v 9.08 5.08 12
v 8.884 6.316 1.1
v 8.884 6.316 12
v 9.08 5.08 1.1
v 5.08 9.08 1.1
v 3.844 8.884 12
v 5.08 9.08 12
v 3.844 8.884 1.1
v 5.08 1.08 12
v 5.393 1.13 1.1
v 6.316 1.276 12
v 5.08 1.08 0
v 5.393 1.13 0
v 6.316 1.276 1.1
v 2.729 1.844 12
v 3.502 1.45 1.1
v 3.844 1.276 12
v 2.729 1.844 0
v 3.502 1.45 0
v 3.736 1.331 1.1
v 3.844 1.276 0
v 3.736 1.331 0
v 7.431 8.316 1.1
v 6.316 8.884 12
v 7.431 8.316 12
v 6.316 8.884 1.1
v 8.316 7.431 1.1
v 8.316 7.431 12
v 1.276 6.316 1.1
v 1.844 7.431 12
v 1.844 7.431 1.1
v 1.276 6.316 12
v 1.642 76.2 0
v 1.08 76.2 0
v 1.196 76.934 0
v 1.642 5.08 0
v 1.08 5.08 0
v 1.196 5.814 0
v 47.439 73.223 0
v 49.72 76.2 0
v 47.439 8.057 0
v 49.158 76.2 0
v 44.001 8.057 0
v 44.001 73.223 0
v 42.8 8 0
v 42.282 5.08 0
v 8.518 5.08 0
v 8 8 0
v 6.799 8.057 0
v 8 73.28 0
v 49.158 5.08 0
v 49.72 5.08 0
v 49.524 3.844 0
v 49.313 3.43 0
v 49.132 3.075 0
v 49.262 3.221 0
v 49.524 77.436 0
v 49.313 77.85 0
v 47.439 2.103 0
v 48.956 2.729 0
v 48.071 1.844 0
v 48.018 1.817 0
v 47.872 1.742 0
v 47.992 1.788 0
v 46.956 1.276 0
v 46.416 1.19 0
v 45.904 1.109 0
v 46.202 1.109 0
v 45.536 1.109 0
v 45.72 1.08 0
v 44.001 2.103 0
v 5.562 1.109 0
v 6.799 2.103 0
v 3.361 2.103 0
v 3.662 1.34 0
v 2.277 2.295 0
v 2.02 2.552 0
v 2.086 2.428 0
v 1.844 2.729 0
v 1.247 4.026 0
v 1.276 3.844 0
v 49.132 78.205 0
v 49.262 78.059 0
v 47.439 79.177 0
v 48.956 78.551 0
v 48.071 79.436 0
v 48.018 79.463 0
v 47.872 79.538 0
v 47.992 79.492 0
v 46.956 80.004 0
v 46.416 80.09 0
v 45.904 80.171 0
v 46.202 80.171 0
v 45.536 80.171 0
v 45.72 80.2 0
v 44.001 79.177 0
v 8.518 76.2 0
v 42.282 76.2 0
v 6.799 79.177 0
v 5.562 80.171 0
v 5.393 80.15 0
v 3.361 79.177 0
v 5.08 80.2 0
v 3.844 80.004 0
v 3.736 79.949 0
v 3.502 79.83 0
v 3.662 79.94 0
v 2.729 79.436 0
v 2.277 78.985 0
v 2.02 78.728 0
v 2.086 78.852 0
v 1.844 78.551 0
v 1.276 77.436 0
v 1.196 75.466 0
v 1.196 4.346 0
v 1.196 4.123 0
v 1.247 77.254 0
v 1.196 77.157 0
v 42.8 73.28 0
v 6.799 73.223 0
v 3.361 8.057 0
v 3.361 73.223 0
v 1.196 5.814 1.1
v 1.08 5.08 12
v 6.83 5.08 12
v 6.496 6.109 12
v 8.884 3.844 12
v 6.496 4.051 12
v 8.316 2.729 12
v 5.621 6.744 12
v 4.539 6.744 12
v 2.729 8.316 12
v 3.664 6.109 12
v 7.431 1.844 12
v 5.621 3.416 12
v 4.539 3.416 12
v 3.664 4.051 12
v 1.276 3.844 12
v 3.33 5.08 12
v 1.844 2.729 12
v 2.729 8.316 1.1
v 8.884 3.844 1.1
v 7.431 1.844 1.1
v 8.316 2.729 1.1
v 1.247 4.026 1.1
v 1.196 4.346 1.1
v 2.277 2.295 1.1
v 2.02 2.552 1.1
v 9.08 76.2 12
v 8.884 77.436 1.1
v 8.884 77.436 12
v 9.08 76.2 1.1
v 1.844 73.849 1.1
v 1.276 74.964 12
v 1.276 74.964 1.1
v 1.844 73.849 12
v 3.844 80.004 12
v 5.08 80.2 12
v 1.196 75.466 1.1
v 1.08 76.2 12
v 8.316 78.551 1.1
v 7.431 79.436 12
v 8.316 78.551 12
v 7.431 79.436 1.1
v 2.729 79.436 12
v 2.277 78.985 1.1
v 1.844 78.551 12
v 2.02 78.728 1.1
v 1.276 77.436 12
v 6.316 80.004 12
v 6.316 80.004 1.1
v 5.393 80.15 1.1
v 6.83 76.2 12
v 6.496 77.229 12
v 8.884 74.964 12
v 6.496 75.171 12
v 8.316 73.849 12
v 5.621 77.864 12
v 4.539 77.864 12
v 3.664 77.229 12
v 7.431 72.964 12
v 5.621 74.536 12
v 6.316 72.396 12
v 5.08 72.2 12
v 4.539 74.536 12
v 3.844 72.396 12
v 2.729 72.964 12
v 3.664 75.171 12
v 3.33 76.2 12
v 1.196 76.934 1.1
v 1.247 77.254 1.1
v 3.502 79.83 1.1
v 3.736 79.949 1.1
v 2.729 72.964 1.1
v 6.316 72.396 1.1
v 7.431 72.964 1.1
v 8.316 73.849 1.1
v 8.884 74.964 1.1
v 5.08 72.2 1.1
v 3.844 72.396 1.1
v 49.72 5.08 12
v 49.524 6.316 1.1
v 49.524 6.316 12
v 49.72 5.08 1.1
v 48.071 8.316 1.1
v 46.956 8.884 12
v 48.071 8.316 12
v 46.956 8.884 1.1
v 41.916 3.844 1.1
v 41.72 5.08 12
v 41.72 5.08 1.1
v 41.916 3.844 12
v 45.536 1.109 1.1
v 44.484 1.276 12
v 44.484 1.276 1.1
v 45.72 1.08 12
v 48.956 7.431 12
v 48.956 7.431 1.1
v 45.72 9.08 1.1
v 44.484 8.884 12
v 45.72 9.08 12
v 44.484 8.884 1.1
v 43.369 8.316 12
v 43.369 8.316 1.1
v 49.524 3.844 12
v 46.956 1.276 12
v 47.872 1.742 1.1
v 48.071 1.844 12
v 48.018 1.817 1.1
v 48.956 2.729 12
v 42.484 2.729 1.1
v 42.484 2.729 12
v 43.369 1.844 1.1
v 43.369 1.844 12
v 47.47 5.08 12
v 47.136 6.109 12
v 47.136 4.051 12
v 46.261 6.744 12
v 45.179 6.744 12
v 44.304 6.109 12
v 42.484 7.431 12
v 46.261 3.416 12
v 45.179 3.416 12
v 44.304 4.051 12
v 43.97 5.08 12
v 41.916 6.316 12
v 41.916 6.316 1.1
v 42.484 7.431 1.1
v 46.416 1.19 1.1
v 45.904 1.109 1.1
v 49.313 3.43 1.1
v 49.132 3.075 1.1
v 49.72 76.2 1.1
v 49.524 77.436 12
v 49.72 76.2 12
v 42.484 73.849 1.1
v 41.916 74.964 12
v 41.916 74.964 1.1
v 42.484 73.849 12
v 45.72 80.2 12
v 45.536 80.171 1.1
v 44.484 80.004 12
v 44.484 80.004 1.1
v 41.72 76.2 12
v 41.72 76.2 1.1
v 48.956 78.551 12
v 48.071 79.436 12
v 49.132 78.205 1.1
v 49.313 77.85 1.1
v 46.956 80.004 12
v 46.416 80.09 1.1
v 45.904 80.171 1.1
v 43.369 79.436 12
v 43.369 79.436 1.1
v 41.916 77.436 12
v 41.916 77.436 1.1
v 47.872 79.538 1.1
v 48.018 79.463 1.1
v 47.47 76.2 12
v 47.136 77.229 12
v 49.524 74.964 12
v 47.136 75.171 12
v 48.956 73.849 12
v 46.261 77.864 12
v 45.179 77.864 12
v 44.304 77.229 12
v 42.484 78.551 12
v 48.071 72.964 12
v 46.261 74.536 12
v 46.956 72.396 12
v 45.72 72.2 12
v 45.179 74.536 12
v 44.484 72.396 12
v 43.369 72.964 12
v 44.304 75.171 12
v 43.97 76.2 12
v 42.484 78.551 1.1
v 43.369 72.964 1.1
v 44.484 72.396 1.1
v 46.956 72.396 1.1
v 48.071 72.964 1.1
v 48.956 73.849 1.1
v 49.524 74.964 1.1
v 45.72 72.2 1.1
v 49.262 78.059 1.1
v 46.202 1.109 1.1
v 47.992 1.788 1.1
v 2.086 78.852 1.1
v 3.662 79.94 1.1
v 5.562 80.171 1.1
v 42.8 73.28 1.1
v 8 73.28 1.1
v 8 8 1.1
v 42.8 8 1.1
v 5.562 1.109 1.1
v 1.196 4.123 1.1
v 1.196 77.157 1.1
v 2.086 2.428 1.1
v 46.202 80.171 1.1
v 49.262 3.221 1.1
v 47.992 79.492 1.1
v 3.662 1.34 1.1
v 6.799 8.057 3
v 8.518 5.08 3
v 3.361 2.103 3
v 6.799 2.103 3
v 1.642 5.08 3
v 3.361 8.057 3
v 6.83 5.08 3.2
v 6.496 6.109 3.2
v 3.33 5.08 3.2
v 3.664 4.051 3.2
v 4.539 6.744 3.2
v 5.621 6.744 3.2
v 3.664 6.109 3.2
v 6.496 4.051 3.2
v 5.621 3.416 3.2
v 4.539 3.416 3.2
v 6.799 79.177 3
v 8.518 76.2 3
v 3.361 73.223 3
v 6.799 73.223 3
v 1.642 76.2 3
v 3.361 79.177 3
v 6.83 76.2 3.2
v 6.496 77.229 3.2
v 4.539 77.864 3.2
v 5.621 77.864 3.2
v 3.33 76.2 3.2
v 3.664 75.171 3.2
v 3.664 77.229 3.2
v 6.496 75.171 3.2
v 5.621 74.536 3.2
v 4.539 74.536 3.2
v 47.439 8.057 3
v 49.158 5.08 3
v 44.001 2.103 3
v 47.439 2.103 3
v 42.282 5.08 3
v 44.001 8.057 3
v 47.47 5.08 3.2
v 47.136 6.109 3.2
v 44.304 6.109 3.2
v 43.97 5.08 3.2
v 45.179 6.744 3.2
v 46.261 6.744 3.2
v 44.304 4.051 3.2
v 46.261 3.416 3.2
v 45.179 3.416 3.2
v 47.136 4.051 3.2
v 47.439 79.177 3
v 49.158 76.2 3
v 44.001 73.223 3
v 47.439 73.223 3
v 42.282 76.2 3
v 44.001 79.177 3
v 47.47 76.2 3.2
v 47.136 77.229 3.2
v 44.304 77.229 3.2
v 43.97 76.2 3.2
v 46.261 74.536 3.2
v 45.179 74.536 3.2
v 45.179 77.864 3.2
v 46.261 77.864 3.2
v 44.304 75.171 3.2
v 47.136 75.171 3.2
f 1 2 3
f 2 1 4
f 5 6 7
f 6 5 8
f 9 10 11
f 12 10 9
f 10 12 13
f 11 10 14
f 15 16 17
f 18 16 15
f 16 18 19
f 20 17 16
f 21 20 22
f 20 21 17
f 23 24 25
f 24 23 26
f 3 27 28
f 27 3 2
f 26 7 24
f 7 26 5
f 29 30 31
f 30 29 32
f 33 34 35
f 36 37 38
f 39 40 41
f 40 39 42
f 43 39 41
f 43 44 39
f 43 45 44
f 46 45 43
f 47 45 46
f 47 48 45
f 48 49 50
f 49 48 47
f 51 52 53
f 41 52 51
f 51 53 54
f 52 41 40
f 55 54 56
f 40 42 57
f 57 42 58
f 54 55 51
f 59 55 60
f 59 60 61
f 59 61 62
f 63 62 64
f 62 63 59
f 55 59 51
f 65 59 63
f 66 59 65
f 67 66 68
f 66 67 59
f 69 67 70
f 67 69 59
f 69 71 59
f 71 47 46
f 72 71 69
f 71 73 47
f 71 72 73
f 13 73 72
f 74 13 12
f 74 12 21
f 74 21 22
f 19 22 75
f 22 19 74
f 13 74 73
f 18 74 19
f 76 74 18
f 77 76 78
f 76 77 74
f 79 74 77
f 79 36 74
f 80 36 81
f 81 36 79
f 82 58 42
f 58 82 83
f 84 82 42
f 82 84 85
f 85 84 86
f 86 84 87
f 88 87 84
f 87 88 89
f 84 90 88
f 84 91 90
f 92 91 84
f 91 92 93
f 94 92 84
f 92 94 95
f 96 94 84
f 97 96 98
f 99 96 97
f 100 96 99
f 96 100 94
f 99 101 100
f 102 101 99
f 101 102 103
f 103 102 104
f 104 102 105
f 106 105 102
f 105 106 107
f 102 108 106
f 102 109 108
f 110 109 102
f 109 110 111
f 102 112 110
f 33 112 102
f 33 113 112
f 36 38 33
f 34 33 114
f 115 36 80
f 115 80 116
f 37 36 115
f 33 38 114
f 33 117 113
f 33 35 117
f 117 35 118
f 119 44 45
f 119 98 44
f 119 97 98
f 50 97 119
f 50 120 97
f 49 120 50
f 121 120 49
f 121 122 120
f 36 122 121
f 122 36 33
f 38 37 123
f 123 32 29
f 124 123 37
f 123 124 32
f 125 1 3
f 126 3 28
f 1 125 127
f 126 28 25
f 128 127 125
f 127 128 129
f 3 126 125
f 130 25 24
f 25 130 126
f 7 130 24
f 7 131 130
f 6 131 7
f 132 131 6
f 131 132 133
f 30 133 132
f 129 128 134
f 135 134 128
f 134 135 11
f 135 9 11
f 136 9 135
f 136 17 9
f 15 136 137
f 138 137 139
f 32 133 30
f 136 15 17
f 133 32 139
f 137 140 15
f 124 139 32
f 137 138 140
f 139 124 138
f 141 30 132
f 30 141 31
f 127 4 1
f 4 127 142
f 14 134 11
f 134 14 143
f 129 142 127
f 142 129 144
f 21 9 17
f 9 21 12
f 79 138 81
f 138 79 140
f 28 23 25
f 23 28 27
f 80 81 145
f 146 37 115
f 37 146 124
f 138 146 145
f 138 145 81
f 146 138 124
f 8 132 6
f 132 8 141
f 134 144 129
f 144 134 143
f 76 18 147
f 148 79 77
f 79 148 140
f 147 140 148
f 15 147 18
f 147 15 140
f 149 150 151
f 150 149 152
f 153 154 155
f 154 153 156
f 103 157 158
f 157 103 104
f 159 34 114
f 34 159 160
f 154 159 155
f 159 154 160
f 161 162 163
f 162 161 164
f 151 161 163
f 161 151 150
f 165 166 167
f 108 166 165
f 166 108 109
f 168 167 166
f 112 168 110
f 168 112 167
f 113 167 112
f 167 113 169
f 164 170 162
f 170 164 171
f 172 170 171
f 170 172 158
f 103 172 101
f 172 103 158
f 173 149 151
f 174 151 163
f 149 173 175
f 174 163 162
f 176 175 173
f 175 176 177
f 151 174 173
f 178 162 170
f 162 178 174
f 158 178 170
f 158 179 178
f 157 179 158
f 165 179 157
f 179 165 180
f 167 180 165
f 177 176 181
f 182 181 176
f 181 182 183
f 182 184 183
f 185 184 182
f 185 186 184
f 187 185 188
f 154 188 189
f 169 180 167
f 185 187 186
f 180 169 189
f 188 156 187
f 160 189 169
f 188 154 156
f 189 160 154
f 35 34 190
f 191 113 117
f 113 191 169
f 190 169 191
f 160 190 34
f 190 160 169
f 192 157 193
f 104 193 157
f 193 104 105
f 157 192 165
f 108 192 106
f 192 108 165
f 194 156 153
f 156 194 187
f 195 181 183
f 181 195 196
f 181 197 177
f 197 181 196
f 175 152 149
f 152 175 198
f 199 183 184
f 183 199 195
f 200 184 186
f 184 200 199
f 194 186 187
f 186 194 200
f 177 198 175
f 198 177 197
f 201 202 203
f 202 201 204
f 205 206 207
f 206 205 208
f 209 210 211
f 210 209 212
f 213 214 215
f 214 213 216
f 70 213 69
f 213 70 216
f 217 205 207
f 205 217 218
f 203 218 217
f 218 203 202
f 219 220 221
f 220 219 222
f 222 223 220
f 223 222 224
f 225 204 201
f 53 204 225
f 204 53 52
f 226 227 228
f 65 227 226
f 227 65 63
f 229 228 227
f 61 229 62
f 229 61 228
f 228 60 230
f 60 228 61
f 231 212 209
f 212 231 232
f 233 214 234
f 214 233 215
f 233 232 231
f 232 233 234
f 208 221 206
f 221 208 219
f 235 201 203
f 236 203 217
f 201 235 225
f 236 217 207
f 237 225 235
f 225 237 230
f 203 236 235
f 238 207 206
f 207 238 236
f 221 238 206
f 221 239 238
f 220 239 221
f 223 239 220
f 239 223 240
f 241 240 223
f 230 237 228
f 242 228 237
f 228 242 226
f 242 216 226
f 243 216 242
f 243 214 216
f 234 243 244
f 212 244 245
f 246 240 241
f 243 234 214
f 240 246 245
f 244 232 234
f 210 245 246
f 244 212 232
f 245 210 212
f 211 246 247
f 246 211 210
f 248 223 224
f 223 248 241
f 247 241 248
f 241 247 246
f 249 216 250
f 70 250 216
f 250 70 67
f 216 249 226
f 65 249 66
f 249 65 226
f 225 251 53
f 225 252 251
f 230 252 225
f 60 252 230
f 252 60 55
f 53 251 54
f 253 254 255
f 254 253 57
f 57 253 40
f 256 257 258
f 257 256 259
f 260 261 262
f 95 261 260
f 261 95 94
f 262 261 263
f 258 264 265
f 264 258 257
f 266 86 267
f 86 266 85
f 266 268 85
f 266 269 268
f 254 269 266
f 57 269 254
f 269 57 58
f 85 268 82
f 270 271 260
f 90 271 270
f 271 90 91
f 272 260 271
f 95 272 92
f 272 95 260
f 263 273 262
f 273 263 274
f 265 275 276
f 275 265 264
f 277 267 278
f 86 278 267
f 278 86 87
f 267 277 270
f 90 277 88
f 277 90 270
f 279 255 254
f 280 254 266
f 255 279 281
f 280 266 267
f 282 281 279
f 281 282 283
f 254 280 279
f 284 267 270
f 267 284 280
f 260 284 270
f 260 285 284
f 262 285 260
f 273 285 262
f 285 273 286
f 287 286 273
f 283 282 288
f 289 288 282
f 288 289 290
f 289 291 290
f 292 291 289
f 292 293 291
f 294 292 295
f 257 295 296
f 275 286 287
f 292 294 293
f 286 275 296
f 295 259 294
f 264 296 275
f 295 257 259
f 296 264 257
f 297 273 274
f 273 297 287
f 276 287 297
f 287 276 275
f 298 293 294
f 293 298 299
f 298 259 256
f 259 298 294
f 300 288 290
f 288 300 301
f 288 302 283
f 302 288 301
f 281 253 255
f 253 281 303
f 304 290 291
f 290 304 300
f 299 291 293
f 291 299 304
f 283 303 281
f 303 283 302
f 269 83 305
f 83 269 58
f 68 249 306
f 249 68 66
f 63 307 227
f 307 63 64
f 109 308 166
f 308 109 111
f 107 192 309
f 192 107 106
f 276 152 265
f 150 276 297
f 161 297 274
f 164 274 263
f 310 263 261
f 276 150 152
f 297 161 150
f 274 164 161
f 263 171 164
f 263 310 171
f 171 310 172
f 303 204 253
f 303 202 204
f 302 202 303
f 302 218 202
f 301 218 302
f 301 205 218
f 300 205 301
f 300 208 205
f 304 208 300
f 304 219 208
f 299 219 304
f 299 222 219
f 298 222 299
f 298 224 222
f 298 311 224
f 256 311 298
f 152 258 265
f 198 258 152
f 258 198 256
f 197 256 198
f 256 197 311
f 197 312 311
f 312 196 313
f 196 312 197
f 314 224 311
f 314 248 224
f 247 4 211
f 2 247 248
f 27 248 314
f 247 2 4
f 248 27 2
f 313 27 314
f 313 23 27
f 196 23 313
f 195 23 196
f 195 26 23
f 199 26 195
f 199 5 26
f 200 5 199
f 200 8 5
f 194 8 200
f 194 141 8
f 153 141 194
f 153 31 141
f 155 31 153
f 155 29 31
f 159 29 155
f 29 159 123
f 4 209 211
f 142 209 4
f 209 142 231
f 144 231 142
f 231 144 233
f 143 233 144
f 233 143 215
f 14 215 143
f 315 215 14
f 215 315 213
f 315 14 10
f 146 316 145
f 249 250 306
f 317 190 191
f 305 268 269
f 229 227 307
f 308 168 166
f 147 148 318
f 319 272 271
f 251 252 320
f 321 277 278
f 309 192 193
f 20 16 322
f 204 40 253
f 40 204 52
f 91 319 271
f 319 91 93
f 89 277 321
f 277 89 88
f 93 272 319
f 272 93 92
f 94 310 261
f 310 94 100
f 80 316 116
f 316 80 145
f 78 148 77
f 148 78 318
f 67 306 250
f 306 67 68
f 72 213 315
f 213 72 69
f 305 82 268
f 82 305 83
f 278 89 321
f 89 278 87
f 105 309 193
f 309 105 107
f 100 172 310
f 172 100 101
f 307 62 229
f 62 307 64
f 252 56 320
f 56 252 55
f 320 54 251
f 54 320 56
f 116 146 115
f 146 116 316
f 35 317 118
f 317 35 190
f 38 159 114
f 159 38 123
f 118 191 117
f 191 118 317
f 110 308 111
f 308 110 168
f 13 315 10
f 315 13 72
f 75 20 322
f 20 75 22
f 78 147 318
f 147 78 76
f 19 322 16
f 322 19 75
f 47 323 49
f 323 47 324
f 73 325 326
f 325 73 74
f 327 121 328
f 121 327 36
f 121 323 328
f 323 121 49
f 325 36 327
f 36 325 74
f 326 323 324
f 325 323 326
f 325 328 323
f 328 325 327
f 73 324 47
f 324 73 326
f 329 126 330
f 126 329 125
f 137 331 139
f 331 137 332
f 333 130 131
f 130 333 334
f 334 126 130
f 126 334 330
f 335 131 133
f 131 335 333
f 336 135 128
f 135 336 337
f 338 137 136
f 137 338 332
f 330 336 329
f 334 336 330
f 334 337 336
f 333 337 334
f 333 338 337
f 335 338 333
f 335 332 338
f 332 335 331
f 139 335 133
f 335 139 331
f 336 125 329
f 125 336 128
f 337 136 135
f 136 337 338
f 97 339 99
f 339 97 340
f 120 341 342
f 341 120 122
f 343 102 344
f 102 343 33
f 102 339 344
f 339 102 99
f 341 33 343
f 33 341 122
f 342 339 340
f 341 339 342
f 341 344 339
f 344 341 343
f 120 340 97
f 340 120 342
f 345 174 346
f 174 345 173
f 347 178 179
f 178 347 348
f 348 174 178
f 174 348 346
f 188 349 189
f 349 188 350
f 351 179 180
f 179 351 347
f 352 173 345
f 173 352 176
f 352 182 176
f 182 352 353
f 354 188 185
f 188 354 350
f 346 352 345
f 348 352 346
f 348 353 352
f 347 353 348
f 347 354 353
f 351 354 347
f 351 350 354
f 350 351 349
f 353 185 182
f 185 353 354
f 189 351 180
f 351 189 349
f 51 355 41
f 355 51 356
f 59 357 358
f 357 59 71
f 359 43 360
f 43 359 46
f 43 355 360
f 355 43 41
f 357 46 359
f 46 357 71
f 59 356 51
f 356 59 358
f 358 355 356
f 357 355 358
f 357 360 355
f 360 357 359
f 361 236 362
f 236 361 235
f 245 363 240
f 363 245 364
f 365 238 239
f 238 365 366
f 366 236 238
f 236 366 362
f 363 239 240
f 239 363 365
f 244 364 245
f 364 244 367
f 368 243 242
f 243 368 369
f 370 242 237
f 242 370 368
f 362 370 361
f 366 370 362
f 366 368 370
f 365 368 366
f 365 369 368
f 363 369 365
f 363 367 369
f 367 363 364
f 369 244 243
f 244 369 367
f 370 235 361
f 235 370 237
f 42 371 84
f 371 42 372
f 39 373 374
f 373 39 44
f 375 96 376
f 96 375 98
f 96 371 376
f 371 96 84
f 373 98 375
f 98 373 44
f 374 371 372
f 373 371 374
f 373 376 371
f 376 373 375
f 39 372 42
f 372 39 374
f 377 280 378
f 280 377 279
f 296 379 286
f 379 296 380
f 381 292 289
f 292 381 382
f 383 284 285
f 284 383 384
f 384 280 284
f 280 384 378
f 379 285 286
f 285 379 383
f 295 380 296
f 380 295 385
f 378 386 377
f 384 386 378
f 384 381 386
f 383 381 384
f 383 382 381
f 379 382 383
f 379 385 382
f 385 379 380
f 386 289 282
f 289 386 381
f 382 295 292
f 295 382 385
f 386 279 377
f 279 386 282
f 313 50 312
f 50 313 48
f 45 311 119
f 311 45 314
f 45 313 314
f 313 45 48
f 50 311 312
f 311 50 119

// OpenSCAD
x_holes = 5;
y_holes = 8;
pedestal_height = 12;   // designed for use the MLAB standard 20mm screws.

MLAB_grid = 10.16;
thickness = 1;          // thickness of bottom belt
pile_radius = 4;        // radius of pile around screw
x_size = x_holes * MLAB_grid ;
y_size = y_holes * MLAB_grid ;
mount_hole = 3.5;
//nut_size = 6.8;  //size suitable for PLA material
nut_size = 6.7;  //size suitable for ABS material
clear = 0.175;




MLAB_grid_xoffset = MLAB_grid/2;
MLAB_grid_yoffset = MLAB_grid/2;

grid_list = [for (j = [MLAB_grid_xoffset : MLAB_grid: x_size], i = [MLAB_grid_yoffset :MLAB_grid: y_size]) 
if ((j>(x_size-10) && i>(y_size-10)) || (j<10 && i<10) || (j<10 && i>(y_size-10)) || (j>(x_size-10) && i<10) ) [j, i] ];


difference () {
    union () {
        for (j = grid_list) {
            translate (concat(j, [0]))
            cylinder (h = pedestal_height, r= pile_radius, $fn=20);
        }

            translate ([MLAB_grid_xoffset , MLAB_grid_yoffset , 0])
                minkowski() {
                cube([x_size - 2*(MLAB_grid/2 - pile_radius) - 2*pile_radius, y_size - 2*(MLAB_grid/2 - pile_radius) - 2*pile_radius, thickness]);          // base plastics brick
                cylinder(r=pile_radius,h=0.1);
            }
    }
    
    translate ([2*pile_radius, 2*pile_radius, 0]) // central hole in module support
        cube([x_size-4*pile_radius, y_size-4*pile_radius, 2*thickness]);          

    // MLAB grid holes
    for (j = grid_list) {
            translate (concat(j, [0]))
            cylinder (h = 3, r= (nut_size+clear)/2, $fn=6);
            translate (concat(j, [3.2]))  // one solid layer for slicer (the holes will be pierced on demand )
            cylinder (h = pedestal_height, r= mount_hole/2, $fn=10);
    }    
}
